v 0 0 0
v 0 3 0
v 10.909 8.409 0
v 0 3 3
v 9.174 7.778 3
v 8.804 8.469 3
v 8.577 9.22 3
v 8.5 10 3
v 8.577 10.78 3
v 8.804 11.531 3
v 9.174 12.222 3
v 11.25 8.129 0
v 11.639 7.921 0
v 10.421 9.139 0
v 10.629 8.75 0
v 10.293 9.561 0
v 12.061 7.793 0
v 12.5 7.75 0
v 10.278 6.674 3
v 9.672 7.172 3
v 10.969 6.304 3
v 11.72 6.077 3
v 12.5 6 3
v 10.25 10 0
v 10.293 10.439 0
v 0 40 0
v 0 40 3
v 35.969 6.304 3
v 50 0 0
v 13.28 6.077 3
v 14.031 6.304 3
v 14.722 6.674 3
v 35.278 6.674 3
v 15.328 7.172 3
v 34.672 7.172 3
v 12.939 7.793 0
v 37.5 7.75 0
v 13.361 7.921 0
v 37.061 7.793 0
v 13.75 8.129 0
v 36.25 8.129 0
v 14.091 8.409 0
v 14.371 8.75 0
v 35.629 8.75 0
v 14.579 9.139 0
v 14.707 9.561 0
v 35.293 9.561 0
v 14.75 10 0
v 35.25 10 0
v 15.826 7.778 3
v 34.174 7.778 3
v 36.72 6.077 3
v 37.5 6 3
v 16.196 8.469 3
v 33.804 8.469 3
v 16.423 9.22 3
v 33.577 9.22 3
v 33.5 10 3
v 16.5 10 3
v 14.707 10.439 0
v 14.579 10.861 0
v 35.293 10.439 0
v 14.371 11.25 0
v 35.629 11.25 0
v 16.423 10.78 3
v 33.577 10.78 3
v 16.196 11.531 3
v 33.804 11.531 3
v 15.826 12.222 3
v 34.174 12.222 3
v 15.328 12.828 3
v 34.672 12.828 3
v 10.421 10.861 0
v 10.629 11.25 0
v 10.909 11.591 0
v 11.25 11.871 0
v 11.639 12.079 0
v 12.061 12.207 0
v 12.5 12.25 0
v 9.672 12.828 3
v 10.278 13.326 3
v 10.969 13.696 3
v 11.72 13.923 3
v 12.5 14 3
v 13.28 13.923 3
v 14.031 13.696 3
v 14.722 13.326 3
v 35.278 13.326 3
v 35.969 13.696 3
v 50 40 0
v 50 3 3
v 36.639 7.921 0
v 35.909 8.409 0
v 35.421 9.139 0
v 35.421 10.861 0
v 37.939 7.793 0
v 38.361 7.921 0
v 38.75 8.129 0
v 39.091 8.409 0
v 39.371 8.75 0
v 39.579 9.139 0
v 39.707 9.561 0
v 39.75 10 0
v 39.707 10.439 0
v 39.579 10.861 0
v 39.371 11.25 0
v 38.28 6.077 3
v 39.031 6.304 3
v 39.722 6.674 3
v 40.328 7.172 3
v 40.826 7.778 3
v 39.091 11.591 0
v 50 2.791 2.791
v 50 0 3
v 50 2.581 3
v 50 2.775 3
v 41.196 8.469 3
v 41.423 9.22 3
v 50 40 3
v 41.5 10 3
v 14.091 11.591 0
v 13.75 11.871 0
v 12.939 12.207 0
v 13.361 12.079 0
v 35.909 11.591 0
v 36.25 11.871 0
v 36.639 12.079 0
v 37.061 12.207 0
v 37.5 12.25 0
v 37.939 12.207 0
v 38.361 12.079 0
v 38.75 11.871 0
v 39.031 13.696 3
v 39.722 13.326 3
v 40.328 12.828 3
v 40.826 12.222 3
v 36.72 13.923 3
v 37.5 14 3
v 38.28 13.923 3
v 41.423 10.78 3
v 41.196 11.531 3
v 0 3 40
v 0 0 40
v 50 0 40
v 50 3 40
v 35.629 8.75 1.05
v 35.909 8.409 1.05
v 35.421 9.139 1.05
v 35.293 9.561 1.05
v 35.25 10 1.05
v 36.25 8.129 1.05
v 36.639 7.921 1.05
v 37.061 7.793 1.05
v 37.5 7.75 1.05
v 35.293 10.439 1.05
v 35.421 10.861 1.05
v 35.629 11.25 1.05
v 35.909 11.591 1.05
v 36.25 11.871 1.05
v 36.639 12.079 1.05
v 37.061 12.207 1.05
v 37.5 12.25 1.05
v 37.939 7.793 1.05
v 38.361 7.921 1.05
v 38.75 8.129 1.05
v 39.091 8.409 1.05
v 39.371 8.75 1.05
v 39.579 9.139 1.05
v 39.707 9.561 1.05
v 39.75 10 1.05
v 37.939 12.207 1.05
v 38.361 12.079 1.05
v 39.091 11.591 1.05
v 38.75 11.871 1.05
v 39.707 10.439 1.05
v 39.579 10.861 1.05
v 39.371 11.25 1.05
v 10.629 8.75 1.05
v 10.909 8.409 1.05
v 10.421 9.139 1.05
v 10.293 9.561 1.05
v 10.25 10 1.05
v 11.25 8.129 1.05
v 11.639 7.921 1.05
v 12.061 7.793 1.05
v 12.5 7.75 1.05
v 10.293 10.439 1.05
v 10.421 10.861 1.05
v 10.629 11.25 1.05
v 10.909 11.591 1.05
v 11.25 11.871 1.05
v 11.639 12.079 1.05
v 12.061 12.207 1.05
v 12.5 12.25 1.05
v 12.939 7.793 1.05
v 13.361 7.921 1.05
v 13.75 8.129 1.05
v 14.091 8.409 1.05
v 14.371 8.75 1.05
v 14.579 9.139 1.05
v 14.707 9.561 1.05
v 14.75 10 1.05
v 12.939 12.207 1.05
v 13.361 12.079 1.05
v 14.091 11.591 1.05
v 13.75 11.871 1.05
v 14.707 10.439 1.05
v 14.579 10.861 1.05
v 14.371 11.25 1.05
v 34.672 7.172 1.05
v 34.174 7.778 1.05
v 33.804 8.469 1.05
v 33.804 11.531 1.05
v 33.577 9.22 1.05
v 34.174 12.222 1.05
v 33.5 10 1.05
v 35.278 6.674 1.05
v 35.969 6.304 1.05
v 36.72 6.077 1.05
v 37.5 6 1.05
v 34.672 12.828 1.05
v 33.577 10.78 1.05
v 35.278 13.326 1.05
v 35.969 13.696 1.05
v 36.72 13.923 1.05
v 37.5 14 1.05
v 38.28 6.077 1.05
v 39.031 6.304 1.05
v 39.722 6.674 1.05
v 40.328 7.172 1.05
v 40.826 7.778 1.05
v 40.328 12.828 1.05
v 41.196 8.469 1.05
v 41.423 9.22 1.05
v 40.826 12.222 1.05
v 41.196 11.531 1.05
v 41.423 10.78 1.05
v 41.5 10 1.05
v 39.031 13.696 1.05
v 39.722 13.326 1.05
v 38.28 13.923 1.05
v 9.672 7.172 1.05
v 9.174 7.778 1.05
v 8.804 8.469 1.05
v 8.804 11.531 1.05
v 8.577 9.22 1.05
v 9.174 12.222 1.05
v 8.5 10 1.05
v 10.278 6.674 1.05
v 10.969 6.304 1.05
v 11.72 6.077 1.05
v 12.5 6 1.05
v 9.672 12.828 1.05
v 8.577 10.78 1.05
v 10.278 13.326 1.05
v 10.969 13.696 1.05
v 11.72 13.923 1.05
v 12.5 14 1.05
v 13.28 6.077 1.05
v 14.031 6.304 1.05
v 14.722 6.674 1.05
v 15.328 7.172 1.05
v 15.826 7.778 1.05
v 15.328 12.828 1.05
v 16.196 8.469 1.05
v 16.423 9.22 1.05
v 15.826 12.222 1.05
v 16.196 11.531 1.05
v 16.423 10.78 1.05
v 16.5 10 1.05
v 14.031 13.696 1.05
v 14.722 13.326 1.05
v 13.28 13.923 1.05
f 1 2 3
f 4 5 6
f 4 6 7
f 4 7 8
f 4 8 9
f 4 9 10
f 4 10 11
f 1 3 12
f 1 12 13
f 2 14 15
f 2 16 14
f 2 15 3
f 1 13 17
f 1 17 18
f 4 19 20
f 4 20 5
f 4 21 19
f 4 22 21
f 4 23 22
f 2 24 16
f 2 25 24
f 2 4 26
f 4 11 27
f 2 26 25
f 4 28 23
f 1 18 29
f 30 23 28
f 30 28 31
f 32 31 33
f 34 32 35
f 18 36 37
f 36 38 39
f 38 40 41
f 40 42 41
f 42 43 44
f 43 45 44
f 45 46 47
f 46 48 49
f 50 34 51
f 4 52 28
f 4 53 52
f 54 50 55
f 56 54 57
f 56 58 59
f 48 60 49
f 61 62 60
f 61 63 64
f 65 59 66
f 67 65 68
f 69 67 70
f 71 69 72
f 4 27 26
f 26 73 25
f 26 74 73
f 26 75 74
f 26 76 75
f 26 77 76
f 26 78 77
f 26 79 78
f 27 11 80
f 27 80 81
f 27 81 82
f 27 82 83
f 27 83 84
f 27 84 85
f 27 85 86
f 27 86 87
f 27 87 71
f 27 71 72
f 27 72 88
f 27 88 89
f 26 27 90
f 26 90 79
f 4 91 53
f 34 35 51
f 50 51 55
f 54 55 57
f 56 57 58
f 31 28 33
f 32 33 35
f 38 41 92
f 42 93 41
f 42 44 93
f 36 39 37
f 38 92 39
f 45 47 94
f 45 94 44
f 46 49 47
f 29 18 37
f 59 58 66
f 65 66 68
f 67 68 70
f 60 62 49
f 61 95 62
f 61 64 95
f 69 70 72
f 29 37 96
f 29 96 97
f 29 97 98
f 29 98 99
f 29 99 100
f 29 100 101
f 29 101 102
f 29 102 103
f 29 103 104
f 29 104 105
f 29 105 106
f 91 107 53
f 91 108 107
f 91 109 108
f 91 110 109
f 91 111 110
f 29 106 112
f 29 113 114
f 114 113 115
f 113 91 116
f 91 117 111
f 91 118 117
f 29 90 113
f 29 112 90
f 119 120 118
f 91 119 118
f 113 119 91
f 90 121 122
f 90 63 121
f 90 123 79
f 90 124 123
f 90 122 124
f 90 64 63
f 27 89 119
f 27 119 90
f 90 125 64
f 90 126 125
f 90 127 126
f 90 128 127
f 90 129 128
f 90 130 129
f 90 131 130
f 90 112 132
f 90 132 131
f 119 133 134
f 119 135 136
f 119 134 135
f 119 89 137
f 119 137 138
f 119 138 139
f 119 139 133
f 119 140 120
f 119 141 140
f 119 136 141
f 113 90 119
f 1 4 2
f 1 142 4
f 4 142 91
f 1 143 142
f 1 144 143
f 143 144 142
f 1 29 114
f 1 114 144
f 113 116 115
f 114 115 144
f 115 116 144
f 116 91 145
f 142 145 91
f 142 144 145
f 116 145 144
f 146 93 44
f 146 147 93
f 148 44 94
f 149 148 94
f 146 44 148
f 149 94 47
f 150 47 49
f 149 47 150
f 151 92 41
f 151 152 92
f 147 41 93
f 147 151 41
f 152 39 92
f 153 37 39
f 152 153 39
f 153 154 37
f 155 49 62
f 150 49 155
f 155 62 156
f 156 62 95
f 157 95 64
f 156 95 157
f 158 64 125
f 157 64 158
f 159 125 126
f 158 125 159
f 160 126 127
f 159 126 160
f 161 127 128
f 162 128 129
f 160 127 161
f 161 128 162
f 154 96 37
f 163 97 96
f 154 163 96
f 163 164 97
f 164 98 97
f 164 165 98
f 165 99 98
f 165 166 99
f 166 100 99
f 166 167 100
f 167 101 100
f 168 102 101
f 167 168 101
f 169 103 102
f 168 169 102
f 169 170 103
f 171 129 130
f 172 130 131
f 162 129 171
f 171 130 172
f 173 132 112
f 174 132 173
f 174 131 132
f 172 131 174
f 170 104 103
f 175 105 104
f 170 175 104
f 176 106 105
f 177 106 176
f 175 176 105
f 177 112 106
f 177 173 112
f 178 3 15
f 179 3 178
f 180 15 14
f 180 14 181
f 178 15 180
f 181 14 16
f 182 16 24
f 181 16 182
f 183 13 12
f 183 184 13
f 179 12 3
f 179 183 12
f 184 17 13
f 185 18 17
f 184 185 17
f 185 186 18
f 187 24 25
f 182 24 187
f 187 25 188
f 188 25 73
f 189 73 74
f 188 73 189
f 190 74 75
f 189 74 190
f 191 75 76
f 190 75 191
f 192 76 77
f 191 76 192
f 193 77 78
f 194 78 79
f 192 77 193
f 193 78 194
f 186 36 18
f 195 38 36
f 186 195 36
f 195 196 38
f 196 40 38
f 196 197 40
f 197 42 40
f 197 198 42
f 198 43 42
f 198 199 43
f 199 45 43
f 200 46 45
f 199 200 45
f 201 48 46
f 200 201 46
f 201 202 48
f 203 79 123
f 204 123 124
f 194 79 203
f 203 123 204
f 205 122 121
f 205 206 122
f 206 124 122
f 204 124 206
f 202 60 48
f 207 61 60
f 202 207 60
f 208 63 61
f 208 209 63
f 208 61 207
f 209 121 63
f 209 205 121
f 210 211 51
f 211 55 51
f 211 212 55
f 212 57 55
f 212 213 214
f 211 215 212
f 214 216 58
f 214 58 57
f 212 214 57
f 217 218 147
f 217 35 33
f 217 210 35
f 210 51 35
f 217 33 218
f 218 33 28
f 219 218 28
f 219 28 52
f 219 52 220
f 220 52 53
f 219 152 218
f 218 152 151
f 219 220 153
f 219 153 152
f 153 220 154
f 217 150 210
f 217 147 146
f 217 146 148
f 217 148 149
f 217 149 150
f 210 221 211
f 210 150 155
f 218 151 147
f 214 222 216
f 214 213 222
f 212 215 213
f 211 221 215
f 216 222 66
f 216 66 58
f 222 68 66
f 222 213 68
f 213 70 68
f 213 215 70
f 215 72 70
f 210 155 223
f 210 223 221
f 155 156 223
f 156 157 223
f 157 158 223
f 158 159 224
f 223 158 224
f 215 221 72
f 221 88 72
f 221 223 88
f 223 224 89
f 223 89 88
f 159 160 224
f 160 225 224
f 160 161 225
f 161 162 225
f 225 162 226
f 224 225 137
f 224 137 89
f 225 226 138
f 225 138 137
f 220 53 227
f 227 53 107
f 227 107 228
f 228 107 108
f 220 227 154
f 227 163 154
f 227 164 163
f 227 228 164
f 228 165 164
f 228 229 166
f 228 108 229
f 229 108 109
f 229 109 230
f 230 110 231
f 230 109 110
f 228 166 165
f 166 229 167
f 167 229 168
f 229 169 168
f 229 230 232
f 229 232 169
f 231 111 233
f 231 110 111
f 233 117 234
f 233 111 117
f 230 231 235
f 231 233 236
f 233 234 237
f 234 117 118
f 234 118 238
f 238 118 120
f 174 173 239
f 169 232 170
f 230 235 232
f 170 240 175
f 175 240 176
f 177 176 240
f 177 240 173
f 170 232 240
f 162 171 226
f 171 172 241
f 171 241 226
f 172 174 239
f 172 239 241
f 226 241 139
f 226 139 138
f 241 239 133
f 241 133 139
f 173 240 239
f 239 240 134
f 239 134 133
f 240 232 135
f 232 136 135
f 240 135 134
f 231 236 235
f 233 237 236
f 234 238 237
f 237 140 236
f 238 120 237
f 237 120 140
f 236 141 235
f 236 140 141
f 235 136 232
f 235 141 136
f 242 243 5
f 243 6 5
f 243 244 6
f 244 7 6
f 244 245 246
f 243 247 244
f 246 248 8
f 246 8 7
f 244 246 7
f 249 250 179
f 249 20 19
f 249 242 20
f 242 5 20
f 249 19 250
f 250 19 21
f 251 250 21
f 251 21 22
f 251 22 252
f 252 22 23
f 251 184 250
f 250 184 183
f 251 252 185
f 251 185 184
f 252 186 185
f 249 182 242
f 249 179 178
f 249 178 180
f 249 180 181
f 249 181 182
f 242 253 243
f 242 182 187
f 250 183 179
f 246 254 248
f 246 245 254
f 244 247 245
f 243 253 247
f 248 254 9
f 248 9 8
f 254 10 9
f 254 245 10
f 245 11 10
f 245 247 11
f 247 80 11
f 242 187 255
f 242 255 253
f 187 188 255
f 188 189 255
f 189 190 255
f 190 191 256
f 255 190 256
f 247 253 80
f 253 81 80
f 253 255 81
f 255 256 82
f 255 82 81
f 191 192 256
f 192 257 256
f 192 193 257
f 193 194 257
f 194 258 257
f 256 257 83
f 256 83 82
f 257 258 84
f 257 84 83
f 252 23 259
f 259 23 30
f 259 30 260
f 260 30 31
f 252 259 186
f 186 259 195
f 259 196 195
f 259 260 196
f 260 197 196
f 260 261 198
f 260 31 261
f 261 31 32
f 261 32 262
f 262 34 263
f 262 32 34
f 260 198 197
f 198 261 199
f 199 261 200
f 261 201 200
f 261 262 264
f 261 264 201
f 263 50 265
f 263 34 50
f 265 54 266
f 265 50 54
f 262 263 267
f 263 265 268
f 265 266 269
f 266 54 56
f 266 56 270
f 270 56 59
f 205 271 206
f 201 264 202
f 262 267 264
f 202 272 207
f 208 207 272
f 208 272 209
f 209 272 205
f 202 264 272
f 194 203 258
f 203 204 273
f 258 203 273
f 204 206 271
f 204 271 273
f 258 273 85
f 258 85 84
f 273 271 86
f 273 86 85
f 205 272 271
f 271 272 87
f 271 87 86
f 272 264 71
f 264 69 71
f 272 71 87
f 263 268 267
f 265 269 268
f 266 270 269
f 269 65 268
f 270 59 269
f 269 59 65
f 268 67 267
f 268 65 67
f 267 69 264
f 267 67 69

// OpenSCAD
// パラメータ設定
width = 50;
depth = 40;
height = 40;
thickness = 3;

hole_dia = 4.5;
cs_dia = 8.0;
cs_depth = 2.0;

module hole() {
    union() {
        cylinder(d = hole_dia, h = thickness + 0.1, $fn = 32);
        translate([0, 0, thickness - cs_depth + 0.05])
            cylinder(d = cs_dia, h = cs_depth + 0.1, $fn = 32);
    }
}

difference() {
    // L字本体
    union() {
        cube([width, depth, thickness]);
        cube([width, thickness, height]);
    }

    // 水平面の穴
    translate([width / 4, 10, 0]) hole();
    translate([width * 3 / 4, 10, 0]) hole();

    // 垂直面の穴
    rotate([-90, 0, 0])
    translate([0, 10, -thickness]) {
        translate([width / 4, height / 2 + 5, 0]) 
            rotate([90, 0, 0]) hole();
        translate([width * 3 / 4, height / 2 + 5, 0]) 
            rotate([90, 0, 0]) hole();
    }
}
